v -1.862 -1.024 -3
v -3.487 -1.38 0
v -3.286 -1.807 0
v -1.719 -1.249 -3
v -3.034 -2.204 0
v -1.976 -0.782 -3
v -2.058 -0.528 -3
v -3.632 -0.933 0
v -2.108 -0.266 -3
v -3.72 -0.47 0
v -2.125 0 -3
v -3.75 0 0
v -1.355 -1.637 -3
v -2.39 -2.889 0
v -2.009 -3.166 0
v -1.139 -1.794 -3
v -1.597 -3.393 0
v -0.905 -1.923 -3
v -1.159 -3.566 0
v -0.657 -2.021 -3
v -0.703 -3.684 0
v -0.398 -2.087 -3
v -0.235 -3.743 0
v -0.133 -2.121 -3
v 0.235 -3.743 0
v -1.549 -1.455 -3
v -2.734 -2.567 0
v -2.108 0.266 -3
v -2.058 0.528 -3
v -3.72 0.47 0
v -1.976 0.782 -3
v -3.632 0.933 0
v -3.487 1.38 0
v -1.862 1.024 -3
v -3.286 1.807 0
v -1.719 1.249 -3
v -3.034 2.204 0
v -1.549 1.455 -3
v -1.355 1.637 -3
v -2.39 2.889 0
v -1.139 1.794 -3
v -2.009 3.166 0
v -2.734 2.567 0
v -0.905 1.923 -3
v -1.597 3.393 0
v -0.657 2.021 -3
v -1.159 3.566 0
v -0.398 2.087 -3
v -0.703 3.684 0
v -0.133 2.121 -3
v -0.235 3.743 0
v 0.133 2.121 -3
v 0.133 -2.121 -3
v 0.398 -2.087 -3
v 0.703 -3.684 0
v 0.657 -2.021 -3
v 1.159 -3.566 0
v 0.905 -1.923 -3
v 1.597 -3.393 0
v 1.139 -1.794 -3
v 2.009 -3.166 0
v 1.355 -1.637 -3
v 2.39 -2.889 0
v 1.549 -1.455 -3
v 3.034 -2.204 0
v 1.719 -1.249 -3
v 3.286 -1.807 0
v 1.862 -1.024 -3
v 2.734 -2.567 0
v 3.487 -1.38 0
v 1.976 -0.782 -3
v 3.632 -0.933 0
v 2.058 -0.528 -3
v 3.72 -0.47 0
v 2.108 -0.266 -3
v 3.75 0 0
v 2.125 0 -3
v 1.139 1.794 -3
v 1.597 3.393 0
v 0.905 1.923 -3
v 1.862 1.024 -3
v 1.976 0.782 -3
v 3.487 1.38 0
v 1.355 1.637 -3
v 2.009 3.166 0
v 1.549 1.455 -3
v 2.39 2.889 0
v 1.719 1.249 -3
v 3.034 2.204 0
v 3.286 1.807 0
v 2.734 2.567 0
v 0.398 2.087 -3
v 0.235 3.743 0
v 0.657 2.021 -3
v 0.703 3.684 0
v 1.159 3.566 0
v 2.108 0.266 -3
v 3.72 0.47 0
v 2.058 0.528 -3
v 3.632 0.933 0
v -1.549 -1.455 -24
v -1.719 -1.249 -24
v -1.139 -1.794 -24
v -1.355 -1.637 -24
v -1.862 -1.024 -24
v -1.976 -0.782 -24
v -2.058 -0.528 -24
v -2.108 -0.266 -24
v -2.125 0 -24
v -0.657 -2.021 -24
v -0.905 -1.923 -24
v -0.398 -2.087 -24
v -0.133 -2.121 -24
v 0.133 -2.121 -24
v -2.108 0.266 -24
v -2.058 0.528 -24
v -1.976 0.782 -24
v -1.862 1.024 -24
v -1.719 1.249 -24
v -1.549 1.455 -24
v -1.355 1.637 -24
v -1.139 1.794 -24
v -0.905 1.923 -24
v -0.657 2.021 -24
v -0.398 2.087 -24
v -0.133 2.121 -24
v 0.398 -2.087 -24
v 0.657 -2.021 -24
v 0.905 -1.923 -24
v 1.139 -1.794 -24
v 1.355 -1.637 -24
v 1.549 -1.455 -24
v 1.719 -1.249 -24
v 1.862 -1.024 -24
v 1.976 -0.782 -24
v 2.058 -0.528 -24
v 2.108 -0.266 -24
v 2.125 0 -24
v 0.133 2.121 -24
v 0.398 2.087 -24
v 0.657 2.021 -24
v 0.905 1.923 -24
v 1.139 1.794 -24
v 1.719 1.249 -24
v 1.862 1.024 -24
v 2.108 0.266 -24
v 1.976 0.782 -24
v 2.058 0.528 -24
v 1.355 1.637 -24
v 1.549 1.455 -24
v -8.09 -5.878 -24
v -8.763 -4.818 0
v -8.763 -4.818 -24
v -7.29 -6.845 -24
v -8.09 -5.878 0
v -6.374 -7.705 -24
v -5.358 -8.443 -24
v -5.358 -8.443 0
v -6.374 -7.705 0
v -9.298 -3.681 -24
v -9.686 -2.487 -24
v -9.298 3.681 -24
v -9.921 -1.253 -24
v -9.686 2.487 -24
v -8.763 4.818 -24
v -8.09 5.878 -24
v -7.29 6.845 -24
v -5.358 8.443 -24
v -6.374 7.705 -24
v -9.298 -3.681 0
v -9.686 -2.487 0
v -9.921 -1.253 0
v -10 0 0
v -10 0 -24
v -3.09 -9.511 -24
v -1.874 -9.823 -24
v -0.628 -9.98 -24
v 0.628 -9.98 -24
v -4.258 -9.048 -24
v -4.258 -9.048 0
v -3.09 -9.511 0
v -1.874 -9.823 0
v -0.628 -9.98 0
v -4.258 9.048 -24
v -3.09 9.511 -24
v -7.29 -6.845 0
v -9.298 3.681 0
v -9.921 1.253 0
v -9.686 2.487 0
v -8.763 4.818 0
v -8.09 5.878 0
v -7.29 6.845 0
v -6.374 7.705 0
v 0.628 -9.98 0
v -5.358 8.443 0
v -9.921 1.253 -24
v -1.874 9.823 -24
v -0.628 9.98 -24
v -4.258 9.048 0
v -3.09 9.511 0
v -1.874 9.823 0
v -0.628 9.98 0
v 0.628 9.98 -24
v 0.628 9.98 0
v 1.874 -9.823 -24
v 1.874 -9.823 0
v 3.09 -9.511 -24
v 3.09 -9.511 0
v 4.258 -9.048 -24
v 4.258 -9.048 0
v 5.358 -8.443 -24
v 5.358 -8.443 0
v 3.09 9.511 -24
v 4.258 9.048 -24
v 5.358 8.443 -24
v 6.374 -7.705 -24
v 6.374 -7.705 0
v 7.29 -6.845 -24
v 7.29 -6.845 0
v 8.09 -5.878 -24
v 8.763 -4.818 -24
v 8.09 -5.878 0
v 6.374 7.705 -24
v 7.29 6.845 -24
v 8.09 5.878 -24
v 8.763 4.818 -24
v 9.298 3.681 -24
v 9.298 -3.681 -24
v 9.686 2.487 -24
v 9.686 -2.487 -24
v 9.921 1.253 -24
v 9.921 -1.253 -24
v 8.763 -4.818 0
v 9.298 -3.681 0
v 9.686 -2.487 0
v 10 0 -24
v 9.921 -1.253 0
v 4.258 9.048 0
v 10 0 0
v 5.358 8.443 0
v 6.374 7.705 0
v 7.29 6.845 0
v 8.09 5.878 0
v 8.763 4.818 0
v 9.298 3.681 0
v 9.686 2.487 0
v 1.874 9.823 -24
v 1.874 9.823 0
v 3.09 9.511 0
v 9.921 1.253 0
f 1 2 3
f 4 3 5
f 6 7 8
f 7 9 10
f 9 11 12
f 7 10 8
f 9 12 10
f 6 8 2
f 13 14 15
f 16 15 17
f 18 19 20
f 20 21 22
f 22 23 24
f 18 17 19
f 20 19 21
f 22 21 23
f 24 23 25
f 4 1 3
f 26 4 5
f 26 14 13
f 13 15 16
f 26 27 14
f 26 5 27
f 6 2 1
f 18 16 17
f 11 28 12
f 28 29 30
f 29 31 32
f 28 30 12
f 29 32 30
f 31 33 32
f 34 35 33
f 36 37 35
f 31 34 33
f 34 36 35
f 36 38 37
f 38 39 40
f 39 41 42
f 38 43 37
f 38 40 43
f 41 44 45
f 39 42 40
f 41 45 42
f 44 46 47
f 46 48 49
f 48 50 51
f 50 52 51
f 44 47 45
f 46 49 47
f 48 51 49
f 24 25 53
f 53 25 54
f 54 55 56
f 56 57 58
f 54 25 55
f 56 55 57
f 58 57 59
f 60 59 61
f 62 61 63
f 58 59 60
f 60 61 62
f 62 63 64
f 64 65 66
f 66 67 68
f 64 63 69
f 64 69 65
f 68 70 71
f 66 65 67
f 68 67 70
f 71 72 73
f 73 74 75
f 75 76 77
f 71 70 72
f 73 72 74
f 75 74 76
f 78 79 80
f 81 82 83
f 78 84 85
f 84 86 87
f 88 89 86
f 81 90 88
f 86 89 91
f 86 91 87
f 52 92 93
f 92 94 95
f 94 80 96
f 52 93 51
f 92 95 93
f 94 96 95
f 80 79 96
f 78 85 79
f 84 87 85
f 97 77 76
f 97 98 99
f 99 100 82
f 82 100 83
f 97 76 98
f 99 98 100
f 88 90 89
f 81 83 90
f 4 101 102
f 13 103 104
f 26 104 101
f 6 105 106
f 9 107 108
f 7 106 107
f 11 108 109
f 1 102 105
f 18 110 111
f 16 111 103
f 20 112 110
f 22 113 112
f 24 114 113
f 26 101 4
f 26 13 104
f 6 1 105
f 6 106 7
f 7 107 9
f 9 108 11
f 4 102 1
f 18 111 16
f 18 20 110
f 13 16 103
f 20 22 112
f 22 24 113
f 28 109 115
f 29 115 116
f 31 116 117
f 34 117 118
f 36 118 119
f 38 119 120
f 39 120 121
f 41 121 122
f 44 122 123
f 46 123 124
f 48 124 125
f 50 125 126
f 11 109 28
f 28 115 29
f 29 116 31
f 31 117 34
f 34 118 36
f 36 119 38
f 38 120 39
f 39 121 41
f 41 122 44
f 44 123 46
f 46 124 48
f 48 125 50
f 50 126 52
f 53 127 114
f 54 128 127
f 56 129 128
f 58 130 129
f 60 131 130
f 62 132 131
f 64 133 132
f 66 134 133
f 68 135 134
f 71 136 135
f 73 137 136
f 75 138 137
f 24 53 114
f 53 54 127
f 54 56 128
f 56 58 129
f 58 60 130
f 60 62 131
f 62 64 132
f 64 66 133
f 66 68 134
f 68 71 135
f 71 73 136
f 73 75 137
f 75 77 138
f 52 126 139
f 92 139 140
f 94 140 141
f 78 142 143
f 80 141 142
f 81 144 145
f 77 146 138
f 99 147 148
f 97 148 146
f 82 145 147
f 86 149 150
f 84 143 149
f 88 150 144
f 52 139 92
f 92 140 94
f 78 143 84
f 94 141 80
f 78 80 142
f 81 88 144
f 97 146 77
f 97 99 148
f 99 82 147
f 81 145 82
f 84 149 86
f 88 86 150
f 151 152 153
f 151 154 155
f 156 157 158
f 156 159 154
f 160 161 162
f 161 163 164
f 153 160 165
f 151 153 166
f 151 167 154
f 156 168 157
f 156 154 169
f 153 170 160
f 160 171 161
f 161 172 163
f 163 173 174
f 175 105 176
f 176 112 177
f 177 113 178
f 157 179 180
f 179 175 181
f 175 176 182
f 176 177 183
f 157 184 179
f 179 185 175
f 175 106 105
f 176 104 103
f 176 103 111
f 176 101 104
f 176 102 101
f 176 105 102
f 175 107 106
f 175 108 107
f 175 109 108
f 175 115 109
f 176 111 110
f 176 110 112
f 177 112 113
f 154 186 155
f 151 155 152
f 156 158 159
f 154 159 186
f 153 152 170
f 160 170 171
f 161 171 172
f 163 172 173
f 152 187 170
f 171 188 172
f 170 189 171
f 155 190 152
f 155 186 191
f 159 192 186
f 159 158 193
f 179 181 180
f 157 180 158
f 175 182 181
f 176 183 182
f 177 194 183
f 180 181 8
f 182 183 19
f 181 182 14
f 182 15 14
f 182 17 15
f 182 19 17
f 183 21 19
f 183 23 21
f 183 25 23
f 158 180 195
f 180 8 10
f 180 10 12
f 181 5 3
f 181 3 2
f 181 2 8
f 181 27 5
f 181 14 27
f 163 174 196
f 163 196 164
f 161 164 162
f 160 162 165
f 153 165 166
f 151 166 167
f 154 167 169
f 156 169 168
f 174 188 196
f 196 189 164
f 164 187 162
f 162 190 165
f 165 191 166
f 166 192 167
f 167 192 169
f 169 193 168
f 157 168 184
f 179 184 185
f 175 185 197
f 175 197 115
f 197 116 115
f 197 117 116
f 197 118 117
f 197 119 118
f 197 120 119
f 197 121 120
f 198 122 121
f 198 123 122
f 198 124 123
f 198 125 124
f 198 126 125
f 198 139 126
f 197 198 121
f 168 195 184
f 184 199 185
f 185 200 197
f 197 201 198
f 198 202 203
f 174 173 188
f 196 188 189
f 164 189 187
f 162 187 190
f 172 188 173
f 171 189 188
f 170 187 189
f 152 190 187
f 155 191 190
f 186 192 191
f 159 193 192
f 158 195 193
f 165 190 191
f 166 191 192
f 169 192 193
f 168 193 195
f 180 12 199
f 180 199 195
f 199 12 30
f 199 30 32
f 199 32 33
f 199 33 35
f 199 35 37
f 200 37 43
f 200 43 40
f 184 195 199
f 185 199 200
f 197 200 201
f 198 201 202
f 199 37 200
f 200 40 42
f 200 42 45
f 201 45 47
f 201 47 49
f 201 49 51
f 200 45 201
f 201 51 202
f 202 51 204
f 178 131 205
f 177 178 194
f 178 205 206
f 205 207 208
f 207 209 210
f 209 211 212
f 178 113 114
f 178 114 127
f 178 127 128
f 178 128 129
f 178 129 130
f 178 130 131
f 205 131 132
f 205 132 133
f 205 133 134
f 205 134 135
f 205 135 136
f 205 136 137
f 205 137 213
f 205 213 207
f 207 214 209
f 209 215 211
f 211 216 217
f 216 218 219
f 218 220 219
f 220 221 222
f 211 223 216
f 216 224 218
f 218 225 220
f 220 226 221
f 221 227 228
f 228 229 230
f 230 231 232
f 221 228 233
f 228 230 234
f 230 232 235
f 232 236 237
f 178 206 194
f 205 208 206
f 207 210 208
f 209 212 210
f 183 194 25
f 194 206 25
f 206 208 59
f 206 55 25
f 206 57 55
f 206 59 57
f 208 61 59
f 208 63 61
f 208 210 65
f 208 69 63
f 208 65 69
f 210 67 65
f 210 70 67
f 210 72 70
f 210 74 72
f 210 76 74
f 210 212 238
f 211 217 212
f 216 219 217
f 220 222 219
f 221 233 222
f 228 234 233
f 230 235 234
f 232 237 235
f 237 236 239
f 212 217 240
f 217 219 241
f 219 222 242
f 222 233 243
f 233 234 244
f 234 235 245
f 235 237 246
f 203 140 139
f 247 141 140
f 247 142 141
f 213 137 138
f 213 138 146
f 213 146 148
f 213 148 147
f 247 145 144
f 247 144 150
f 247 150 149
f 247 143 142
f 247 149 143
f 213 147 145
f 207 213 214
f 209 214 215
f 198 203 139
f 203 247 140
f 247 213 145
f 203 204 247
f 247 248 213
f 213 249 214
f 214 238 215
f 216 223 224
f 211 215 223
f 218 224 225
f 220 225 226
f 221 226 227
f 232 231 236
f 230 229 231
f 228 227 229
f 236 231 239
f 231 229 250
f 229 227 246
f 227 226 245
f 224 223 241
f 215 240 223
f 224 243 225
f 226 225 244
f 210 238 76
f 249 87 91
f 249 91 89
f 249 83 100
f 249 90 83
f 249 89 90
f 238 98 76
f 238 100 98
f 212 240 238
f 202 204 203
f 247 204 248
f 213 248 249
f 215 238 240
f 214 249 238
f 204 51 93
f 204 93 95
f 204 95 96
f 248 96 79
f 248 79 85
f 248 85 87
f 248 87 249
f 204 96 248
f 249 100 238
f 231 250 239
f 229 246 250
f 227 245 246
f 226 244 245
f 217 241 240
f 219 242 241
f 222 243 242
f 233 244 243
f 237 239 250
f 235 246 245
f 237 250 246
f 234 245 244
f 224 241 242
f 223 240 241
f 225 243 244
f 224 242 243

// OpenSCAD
$fn = 50;


difference() {
	union() {
		translate(v = [0, 0, -24.0000000000]) {
			cylinder(h = 24, r = 10.0000000000);
		}
	}
	union() {
		translate(v = [0, 0, 0]) {
			rotate(a = [0, 0, 0]) {
				difference() {
					union() {
						translate(v = [0, 0, -27.0000000000]) {
							cylinder(h = 27, r = 2.0000000000);
						}
						translate(v = [0, 0, -3]) {
							cylinder(h = 3, r1 = 2.1250000000, r2 = 3.7500000000);
						}
						translate(v = [0, 0, -27.0000000000]) {
							cylinder(h = 27, r = 2.1250000000);
						}
						translate(v = [0, 0, -27.0000000000]) {
							cylinder(h = 27, r = 2.0000000000);
						}
					}
					union();
				}
			}
		}
	}
}
